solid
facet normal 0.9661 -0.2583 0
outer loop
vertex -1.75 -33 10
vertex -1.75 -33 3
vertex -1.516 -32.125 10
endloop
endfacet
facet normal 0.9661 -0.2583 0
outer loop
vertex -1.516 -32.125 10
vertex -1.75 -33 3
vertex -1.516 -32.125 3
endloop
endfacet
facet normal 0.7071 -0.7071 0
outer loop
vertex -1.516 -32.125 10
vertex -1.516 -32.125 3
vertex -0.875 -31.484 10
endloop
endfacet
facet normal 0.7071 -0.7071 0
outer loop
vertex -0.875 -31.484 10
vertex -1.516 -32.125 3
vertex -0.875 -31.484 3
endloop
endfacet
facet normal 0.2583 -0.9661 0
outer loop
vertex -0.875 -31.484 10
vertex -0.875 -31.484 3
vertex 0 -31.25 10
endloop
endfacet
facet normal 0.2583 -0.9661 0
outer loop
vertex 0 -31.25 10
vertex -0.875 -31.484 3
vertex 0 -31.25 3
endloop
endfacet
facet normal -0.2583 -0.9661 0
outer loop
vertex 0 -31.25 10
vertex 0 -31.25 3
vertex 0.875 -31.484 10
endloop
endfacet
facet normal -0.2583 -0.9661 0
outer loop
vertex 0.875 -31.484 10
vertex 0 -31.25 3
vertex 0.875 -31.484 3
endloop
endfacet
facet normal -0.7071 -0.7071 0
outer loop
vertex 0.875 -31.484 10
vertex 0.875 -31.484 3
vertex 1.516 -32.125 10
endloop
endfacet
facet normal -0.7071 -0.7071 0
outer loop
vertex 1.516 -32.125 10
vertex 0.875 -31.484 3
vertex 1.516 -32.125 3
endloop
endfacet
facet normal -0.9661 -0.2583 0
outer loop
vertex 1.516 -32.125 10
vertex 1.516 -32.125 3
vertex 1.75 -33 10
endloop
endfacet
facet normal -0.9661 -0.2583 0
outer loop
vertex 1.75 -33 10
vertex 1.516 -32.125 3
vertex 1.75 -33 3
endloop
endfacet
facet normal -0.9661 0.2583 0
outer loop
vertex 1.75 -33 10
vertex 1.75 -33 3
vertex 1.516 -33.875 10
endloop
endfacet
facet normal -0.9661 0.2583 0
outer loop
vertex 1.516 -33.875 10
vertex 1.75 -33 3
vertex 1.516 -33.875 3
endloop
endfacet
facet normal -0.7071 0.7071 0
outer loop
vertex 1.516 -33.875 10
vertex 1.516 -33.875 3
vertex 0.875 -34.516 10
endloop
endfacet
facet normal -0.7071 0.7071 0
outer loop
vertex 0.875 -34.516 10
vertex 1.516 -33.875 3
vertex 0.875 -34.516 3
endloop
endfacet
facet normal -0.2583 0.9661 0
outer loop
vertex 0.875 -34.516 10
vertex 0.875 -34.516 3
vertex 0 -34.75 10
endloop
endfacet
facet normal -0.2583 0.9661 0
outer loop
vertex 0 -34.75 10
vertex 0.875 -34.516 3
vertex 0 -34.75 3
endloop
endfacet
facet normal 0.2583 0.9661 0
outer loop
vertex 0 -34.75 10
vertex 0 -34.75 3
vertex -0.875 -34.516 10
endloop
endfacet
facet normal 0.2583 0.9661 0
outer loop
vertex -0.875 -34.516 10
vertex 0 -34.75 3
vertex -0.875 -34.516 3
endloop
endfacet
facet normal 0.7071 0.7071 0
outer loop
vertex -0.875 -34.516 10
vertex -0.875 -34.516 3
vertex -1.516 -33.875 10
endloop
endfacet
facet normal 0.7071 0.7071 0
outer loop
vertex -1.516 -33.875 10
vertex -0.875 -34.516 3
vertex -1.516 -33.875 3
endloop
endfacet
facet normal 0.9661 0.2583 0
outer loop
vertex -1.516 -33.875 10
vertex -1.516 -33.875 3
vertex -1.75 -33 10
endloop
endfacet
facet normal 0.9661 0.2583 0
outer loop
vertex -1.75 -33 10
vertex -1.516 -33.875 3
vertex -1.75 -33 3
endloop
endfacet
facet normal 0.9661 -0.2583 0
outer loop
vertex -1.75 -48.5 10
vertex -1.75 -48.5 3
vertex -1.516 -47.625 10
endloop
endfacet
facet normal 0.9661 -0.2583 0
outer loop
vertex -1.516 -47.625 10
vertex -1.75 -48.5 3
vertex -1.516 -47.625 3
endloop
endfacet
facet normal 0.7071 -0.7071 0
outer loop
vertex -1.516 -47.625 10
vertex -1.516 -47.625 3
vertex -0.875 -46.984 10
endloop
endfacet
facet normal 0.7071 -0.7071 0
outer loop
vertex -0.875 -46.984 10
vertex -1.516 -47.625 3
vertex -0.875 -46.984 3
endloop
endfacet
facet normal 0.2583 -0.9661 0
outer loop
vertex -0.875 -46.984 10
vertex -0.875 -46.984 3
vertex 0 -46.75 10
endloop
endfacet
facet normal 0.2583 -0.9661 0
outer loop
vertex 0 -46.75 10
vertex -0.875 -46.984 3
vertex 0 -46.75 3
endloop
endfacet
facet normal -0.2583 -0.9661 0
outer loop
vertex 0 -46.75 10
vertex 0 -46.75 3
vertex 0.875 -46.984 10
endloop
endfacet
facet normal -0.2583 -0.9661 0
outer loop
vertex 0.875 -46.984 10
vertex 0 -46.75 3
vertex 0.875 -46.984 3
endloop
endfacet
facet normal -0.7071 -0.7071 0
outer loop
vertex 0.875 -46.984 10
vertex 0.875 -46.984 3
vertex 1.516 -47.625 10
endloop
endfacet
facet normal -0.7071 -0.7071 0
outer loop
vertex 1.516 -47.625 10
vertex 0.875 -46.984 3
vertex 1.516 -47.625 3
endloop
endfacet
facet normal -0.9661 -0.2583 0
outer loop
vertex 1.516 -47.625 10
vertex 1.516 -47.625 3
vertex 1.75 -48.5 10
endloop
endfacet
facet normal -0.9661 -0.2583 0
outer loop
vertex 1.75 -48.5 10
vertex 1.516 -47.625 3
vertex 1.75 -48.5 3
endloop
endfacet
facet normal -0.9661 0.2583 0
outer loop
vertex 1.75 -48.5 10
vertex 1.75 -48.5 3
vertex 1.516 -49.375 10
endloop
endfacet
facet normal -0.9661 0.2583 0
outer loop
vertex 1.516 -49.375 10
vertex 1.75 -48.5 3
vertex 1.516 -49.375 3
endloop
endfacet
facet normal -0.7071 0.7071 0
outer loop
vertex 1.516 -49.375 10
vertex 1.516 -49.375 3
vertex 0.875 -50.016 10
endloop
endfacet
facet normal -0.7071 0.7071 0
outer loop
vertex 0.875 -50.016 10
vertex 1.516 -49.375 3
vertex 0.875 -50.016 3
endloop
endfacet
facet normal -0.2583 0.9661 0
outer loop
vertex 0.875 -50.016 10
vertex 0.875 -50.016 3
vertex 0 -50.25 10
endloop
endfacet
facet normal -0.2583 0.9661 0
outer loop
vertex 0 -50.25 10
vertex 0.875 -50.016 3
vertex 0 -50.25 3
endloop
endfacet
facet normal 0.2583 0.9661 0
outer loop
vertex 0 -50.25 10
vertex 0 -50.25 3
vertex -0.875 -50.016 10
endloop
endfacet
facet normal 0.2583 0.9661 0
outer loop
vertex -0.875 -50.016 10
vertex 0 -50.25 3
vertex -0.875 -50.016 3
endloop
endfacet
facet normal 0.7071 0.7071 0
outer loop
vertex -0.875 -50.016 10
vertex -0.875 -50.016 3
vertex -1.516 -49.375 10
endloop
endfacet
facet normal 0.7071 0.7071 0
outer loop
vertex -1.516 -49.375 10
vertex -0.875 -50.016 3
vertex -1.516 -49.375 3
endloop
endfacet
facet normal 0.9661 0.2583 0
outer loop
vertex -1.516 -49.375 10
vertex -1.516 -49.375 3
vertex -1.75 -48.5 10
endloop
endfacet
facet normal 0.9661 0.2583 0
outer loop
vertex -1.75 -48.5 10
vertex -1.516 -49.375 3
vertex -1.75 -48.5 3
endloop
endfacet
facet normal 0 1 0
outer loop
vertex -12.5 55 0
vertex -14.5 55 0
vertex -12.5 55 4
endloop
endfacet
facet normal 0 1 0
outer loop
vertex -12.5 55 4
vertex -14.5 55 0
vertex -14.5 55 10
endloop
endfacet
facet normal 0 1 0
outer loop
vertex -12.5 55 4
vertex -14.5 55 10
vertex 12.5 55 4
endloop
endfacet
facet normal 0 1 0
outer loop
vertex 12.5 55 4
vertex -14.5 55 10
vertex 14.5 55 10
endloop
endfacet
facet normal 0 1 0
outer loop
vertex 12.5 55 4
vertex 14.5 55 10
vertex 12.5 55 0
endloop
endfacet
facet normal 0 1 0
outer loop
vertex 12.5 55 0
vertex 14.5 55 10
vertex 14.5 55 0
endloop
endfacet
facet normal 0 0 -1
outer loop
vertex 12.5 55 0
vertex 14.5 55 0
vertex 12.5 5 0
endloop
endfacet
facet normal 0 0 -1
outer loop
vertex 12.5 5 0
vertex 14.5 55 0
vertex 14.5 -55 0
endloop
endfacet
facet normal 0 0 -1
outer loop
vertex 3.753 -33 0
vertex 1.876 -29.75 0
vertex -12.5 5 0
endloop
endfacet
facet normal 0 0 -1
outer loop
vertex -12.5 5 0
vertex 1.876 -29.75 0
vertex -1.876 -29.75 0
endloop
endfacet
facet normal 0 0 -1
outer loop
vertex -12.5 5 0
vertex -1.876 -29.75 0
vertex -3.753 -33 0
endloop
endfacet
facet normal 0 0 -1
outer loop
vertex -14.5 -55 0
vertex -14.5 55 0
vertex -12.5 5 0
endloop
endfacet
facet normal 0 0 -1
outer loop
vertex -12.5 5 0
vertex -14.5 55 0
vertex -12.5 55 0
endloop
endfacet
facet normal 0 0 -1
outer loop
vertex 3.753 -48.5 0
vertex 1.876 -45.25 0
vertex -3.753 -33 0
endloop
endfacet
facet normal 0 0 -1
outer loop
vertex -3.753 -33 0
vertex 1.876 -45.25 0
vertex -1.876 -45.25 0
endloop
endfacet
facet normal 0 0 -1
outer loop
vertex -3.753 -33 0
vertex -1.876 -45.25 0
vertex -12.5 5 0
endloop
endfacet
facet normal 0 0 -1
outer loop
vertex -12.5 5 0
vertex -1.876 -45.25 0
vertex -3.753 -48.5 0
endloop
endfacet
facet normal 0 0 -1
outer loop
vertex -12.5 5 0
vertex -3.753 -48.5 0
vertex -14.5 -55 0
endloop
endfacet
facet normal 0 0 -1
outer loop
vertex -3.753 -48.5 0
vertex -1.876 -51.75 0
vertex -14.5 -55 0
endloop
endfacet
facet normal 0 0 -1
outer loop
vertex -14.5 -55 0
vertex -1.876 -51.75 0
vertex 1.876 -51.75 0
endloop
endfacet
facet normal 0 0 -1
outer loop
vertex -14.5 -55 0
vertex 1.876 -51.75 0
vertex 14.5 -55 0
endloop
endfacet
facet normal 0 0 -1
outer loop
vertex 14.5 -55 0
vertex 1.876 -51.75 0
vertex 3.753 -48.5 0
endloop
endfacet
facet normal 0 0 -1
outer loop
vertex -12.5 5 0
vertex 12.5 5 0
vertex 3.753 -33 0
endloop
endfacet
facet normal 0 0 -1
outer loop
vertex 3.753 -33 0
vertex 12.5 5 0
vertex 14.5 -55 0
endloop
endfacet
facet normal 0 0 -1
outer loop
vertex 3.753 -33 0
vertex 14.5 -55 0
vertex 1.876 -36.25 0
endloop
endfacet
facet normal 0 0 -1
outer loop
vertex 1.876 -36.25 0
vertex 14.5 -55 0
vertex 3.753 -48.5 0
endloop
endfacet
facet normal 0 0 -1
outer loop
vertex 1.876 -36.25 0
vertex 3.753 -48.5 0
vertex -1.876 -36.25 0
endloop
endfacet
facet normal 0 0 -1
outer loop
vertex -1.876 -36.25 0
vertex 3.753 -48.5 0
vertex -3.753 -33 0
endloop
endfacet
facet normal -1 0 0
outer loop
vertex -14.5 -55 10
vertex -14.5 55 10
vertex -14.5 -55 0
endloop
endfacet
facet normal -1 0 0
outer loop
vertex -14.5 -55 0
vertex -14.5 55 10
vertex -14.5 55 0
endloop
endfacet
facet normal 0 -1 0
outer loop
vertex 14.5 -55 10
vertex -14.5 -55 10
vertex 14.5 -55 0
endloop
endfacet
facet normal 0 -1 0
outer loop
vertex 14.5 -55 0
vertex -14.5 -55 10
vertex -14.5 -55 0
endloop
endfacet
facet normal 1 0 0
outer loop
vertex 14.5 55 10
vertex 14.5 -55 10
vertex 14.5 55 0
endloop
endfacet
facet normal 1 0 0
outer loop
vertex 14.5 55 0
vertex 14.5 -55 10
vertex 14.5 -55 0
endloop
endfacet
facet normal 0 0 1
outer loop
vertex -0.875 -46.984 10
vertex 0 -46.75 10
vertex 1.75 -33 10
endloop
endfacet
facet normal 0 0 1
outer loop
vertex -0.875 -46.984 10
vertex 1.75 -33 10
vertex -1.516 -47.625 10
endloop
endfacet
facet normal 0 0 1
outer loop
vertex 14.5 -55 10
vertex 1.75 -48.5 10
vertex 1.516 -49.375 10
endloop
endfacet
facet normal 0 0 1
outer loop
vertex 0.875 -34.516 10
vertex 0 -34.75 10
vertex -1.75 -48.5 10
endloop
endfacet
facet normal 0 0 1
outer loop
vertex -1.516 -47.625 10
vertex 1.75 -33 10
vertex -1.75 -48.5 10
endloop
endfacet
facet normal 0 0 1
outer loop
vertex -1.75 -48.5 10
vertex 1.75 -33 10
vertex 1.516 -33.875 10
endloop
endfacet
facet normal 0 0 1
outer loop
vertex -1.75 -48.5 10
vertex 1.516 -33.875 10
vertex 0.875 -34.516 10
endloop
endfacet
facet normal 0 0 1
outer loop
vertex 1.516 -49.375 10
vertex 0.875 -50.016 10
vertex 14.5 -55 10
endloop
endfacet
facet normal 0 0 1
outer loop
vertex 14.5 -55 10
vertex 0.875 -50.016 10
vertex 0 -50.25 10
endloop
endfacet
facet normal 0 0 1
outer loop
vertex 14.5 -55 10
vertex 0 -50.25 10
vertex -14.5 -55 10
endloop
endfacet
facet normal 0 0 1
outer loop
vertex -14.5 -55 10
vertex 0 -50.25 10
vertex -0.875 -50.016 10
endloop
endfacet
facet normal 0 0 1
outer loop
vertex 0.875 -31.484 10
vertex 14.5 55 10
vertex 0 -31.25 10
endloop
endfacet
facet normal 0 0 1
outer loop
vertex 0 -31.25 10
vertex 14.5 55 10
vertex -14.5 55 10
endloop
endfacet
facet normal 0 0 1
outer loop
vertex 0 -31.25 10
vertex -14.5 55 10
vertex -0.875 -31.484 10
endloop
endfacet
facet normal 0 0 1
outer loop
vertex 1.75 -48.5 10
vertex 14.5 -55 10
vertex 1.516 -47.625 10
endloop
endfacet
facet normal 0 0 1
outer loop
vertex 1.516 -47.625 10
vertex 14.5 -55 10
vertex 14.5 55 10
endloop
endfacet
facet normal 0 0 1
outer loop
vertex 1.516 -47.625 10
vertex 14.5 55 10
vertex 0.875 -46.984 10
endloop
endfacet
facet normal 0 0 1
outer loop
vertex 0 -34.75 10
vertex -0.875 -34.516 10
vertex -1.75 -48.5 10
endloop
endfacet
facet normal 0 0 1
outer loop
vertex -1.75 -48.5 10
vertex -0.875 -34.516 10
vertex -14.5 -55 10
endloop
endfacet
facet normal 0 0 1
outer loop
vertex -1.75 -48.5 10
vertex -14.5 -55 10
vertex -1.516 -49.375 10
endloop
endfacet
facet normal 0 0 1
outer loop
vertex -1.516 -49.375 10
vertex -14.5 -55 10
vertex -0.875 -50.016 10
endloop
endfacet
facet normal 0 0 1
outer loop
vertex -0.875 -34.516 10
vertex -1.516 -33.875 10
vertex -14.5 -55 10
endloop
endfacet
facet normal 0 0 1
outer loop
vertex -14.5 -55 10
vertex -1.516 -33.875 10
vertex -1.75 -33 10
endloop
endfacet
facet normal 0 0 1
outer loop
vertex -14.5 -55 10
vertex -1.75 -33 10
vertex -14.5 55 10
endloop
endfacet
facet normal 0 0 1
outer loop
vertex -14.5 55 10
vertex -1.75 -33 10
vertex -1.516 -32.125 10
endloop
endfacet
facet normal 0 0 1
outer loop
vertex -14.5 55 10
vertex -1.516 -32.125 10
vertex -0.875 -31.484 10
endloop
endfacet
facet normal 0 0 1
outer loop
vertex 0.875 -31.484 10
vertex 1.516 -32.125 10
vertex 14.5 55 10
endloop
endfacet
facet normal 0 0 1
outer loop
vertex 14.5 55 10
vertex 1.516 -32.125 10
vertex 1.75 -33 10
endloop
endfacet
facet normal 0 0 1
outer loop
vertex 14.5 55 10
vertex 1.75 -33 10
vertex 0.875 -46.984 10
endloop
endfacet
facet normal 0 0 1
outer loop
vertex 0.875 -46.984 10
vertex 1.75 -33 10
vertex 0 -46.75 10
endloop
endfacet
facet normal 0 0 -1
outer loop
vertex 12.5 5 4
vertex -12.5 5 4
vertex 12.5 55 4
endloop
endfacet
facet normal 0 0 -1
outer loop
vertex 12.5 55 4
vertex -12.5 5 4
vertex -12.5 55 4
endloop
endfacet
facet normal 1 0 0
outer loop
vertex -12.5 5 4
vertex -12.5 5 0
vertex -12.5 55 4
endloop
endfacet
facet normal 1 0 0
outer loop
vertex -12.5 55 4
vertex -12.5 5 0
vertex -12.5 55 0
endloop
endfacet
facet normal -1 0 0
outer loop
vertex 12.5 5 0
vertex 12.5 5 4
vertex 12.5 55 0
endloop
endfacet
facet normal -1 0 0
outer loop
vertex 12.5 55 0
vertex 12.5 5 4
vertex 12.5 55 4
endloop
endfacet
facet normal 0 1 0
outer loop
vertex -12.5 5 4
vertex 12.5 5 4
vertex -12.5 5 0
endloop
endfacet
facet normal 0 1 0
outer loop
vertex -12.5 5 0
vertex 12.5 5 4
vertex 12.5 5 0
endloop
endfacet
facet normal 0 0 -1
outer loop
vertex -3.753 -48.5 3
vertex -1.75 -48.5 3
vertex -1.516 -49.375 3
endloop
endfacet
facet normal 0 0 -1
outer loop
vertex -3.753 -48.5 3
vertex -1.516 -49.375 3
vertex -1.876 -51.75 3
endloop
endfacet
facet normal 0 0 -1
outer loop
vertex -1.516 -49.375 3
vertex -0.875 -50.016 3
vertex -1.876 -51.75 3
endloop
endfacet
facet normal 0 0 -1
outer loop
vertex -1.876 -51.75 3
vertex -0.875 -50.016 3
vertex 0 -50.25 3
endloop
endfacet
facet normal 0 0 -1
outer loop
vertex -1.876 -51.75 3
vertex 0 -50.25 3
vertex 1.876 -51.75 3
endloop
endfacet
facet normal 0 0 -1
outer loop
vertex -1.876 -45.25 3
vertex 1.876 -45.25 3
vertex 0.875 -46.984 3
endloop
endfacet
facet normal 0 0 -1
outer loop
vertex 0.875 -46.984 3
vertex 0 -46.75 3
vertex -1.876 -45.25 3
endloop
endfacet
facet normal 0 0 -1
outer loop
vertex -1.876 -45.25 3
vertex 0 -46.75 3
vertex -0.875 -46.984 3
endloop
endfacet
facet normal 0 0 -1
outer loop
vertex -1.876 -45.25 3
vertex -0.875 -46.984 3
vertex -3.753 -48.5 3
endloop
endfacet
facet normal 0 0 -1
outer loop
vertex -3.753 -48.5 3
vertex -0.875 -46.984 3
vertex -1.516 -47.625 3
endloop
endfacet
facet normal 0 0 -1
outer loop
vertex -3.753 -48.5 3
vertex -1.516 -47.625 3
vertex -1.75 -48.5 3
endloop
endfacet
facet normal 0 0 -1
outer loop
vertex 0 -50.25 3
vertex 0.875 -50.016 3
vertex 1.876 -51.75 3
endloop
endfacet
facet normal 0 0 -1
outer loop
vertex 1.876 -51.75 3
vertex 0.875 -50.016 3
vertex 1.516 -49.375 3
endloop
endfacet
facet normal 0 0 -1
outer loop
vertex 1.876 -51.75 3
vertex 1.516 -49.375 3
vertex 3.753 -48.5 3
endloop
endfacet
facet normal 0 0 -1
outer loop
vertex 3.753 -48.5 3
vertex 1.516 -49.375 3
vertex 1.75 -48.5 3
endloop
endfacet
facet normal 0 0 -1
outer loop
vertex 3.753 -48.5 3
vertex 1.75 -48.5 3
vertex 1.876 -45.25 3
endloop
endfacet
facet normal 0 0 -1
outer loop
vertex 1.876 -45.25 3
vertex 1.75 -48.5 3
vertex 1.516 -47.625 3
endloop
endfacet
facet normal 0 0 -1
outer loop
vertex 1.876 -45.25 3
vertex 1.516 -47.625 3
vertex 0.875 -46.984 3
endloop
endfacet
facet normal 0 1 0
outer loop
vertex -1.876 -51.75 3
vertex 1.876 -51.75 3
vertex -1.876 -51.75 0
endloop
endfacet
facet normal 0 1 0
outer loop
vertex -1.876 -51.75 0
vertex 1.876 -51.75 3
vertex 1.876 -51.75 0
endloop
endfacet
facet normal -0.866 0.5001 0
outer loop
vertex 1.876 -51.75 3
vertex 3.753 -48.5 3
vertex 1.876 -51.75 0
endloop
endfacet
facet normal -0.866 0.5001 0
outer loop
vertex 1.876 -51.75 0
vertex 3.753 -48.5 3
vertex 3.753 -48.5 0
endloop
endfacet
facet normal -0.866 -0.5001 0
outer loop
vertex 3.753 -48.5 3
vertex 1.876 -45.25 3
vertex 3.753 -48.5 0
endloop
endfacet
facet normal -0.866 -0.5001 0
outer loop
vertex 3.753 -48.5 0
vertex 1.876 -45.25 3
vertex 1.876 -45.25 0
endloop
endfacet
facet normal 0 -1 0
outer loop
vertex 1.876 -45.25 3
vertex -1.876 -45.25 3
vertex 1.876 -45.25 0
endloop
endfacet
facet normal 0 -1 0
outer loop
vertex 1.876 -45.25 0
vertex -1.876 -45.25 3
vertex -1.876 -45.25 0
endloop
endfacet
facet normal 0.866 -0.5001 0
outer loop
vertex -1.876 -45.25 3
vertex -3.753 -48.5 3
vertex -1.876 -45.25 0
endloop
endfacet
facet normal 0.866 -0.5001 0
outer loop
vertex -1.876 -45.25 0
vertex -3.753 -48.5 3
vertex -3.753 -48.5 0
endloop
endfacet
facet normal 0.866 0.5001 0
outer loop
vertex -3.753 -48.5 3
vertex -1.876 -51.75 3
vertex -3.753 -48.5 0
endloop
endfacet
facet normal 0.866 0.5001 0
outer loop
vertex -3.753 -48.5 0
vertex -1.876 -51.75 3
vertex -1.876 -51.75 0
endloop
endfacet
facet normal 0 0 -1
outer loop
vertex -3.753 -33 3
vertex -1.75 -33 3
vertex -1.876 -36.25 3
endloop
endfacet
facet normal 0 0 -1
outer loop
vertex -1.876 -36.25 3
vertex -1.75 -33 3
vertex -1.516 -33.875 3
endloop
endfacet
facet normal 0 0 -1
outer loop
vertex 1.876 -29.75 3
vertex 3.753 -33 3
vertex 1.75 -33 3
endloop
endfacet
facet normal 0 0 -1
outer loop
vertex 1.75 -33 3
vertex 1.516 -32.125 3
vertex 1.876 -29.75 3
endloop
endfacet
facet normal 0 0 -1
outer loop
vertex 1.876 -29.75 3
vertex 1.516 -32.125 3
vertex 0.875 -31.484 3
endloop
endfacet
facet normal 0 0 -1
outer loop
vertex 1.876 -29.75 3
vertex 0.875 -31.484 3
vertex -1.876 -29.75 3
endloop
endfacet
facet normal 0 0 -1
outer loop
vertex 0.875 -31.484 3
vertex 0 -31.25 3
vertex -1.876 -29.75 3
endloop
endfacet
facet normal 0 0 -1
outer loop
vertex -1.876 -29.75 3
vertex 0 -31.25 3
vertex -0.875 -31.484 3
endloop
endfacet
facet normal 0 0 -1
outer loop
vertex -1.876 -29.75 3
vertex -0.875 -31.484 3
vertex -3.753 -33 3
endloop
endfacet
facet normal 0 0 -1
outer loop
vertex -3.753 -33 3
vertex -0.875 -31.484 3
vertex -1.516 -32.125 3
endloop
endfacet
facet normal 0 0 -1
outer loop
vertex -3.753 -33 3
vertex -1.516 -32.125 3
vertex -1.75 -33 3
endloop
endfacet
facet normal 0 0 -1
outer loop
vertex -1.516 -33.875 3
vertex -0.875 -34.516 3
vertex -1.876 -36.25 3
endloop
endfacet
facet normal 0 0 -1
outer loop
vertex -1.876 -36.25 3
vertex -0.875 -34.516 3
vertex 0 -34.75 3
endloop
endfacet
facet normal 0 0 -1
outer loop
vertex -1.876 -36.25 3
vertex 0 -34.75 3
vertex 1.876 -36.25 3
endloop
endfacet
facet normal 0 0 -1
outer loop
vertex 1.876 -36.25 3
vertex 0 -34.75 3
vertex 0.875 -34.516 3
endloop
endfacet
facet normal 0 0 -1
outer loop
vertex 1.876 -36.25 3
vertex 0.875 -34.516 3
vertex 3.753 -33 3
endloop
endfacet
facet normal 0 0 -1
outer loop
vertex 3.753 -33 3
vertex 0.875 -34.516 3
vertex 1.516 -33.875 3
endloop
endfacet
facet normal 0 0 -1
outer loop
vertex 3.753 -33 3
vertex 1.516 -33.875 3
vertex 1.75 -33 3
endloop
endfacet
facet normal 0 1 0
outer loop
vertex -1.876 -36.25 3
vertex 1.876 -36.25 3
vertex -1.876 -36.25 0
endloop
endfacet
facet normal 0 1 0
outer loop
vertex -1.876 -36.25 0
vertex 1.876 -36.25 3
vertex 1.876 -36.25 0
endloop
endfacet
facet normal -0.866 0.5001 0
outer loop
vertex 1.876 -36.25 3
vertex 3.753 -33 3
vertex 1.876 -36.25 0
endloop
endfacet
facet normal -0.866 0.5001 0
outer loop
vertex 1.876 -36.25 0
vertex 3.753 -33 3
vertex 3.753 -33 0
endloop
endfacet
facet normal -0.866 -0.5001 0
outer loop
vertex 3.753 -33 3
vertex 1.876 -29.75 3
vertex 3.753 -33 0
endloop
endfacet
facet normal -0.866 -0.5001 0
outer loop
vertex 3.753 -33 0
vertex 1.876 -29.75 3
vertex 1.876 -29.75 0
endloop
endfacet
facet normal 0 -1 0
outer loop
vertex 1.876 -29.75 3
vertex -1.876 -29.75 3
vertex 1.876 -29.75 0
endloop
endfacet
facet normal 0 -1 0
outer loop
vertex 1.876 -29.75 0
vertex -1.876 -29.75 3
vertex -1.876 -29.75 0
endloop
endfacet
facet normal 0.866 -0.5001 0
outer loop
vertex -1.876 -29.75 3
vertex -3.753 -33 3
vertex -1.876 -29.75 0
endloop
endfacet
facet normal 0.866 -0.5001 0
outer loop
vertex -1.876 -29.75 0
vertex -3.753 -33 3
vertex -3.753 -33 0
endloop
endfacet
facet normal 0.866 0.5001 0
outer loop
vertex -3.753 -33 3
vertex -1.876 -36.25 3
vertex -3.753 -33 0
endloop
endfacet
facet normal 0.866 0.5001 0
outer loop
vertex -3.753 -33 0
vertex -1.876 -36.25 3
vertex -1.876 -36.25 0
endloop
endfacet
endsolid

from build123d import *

# Parameters (mm, degrees)
SKETCH1_W               = 29
SKETCH1_H               = 110
BOSS_EXTRUDE1_DEPTH     = 10
CUT_EXTRUDE1_DEPTH      = 112.401301608
CUT_EXTRUDE1_DEPTH_BACK = 50
SKETCH2_W               = 25
SKETCH2_H               = 4
SKETCH3_R               = 1.75
CUT_EXTRUDE2_DEPTH      = 58.751623354
CUT_EXTRUDE3_DEPTH      = 3


with BuildPart() as part:
    # Sketch1 → Boss-Extrude1 (new body)
    with BuildSketch(Plane.XY):
        Rectangle(SKETCH1_W, SKETCH1_H)
    extrude(amount=BOSS_EXTRUDE1_DEPTH)

    # Sketch2 → Cut-Extrude1 (cut, two sides: drawn at the far end of the back side and taken through both)
    with BuildSketch(Plane(origin=(0, 55, 0), x_dir=(1, 0, 0), z_dir=(0, 1, 0)).offset(-CUT_EXTRUDE1_DEPTH_BACK)):
        with Locations((0, -2)):
            Rectangle(SKETCH2_W, SKETCH2_H)
    extrude(amount=CUT_EXTRUDE1_DEPTH + CUT_EXTRUDE1_DEPTH_BACK, mode=Mode.SUBTRACT)

    # Sketch3 → Cut-Extrude2 (cut, through all)
    with BuildSketch(Plane(origin=(0, 0, 0), x_dir=(-1, 0, 0), z_dir=(0, 0, -1))):
        with Locations((0, -48.5)):
            Circle(SKETCH3_R)
        with Locations((0, -33)):
            Circle(SKETCH3_R)
    extrude(amount=-CUT_EXTRUDE2_DEPTH, mode=Mode.SUBTRACT)

    # Sketch5 → Cut-Extrude3 (cut)
    with BuildSketch(Plane(origin=(0, 0, 0), x_dir=(-1, 0, 0), z_dir=(0, 0, -1))):
        Polygon((1.876388375, -51.75), (3.75277675, -48.5), (1.876388375, -45.25), (-1.876388375, -45.25), (-3.75277675, -48.5), (-1.876388375, -51.75), align=None)
        Polygon((1.876388375, -36.25), (3.75277675, -33), (1.876388375, -29.75), (-1.876388375, -29.75), (-3.75277675, -33), (-1.876388375, -36.25), align=None)
    extrude(amount=-CUT_EXTRUDE3_DEPTH, mode=Mode.SUBTRACT)


solid = part.part
